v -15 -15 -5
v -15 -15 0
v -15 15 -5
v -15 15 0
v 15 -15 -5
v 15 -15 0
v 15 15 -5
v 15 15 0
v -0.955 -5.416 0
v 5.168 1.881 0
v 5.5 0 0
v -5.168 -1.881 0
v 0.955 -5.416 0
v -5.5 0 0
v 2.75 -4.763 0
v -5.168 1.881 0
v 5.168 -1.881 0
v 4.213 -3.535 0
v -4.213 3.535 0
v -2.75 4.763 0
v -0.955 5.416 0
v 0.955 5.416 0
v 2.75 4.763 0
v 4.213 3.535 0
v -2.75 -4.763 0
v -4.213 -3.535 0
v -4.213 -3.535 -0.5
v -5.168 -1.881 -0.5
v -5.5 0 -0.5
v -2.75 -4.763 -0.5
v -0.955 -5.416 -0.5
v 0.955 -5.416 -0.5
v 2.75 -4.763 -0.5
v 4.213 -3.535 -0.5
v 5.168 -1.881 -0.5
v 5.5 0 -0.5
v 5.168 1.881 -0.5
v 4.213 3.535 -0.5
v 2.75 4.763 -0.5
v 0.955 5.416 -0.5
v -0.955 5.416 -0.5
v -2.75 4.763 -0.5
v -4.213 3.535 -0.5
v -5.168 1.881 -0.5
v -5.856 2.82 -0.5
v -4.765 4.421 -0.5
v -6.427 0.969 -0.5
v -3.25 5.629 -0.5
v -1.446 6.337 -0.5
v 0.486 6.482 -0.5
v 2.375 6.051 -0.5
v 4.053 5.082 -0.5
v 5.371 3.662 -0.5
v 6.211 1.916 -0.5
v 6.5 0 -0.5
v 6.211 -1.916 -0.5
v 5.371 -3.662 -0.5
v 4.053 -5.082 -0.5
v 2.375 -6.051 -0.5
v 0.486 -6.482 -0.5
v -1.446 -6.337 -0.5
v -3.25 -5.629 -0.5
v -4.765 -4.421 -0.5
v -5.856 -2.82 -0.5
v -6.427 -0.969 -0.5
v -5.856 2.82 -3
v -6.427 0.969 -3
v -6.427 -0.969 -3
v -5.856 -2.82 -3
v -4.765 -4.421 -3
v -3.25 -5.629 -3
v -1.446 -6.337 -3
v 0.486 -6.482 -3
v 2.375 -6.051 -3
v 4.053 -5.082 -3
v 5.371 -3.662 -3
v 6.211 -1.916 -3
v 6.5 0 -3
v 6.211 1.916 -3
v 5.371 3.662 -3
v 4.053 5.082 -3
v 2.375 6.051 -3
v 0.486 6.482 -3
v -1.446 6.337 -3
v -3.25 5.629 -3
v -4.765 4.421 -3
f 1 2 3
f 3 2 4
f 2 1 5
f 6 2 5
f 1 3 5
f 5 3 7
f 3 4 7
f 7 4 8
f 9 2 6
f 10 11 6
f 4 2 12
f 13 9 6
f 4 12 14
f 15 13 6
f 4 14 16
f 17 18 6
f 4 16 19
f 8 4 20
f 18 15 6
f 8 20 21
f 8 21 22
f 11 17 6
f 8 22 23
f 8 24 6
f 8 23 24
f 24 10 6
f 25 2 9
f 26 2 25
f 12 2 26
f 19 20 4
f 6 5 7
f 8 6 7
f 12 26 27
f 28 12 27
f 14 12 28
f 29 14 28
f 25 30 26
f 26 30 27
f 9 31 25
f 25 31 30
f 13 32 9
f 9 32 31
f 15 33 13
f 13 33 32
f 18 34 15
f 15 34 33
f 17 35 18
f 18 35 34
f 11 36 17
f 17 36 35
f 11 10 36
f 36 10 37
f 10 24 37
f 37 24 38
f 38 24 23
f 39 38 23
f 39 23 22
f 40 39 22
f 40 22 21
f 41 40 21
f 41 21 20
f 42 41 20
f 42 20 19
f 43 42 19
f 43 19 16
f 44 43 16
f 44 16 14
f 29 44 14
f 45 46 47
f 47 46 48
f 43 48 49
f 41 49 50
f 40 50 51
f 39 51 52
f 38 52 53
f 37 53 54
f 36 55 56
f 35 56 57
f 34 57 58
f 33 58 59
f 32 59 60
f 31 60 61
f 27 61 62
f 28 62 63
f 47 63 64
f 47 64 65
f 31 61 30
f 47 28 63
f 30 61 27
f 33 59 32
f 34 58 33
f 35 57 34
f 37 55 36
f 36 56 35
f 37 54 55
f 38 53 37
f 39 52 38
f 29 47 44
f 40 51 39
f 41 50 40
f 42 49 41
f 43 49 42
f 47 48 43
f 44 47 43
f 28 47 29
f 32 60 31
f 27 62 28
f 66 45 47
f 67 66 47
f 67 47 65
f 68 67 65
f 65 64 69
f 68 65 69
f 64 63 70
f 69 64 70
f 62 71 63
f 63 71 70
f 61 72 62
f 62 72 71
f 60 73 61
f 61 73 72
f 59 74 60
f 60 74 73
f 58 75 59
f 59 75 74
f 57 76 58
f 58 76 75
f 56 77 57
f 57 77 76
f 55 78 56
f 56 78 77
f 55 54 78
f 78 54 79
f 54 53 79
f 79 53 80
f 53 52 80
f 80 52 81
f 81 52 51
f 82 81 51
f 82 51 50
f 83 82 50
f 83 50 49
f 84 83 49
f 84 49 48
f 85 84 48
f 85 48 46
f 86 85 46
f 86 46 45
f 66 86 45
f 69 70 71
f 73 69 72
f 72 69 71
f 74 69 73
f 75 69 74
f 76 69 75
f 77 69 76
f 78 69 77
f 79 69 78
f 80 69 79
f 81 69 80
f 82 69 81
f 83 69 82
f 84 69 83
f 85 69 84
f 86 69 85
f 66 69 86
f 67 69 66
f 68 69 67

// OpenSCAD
difference() {
	translate([-15,-15,-5]) cube([30,30,5]);
	translate([0,0,-3]) union() {
		cylinder(2.5,6.5,6.5);
		cylinder(5.0,5.5,5.5);
	}
}
